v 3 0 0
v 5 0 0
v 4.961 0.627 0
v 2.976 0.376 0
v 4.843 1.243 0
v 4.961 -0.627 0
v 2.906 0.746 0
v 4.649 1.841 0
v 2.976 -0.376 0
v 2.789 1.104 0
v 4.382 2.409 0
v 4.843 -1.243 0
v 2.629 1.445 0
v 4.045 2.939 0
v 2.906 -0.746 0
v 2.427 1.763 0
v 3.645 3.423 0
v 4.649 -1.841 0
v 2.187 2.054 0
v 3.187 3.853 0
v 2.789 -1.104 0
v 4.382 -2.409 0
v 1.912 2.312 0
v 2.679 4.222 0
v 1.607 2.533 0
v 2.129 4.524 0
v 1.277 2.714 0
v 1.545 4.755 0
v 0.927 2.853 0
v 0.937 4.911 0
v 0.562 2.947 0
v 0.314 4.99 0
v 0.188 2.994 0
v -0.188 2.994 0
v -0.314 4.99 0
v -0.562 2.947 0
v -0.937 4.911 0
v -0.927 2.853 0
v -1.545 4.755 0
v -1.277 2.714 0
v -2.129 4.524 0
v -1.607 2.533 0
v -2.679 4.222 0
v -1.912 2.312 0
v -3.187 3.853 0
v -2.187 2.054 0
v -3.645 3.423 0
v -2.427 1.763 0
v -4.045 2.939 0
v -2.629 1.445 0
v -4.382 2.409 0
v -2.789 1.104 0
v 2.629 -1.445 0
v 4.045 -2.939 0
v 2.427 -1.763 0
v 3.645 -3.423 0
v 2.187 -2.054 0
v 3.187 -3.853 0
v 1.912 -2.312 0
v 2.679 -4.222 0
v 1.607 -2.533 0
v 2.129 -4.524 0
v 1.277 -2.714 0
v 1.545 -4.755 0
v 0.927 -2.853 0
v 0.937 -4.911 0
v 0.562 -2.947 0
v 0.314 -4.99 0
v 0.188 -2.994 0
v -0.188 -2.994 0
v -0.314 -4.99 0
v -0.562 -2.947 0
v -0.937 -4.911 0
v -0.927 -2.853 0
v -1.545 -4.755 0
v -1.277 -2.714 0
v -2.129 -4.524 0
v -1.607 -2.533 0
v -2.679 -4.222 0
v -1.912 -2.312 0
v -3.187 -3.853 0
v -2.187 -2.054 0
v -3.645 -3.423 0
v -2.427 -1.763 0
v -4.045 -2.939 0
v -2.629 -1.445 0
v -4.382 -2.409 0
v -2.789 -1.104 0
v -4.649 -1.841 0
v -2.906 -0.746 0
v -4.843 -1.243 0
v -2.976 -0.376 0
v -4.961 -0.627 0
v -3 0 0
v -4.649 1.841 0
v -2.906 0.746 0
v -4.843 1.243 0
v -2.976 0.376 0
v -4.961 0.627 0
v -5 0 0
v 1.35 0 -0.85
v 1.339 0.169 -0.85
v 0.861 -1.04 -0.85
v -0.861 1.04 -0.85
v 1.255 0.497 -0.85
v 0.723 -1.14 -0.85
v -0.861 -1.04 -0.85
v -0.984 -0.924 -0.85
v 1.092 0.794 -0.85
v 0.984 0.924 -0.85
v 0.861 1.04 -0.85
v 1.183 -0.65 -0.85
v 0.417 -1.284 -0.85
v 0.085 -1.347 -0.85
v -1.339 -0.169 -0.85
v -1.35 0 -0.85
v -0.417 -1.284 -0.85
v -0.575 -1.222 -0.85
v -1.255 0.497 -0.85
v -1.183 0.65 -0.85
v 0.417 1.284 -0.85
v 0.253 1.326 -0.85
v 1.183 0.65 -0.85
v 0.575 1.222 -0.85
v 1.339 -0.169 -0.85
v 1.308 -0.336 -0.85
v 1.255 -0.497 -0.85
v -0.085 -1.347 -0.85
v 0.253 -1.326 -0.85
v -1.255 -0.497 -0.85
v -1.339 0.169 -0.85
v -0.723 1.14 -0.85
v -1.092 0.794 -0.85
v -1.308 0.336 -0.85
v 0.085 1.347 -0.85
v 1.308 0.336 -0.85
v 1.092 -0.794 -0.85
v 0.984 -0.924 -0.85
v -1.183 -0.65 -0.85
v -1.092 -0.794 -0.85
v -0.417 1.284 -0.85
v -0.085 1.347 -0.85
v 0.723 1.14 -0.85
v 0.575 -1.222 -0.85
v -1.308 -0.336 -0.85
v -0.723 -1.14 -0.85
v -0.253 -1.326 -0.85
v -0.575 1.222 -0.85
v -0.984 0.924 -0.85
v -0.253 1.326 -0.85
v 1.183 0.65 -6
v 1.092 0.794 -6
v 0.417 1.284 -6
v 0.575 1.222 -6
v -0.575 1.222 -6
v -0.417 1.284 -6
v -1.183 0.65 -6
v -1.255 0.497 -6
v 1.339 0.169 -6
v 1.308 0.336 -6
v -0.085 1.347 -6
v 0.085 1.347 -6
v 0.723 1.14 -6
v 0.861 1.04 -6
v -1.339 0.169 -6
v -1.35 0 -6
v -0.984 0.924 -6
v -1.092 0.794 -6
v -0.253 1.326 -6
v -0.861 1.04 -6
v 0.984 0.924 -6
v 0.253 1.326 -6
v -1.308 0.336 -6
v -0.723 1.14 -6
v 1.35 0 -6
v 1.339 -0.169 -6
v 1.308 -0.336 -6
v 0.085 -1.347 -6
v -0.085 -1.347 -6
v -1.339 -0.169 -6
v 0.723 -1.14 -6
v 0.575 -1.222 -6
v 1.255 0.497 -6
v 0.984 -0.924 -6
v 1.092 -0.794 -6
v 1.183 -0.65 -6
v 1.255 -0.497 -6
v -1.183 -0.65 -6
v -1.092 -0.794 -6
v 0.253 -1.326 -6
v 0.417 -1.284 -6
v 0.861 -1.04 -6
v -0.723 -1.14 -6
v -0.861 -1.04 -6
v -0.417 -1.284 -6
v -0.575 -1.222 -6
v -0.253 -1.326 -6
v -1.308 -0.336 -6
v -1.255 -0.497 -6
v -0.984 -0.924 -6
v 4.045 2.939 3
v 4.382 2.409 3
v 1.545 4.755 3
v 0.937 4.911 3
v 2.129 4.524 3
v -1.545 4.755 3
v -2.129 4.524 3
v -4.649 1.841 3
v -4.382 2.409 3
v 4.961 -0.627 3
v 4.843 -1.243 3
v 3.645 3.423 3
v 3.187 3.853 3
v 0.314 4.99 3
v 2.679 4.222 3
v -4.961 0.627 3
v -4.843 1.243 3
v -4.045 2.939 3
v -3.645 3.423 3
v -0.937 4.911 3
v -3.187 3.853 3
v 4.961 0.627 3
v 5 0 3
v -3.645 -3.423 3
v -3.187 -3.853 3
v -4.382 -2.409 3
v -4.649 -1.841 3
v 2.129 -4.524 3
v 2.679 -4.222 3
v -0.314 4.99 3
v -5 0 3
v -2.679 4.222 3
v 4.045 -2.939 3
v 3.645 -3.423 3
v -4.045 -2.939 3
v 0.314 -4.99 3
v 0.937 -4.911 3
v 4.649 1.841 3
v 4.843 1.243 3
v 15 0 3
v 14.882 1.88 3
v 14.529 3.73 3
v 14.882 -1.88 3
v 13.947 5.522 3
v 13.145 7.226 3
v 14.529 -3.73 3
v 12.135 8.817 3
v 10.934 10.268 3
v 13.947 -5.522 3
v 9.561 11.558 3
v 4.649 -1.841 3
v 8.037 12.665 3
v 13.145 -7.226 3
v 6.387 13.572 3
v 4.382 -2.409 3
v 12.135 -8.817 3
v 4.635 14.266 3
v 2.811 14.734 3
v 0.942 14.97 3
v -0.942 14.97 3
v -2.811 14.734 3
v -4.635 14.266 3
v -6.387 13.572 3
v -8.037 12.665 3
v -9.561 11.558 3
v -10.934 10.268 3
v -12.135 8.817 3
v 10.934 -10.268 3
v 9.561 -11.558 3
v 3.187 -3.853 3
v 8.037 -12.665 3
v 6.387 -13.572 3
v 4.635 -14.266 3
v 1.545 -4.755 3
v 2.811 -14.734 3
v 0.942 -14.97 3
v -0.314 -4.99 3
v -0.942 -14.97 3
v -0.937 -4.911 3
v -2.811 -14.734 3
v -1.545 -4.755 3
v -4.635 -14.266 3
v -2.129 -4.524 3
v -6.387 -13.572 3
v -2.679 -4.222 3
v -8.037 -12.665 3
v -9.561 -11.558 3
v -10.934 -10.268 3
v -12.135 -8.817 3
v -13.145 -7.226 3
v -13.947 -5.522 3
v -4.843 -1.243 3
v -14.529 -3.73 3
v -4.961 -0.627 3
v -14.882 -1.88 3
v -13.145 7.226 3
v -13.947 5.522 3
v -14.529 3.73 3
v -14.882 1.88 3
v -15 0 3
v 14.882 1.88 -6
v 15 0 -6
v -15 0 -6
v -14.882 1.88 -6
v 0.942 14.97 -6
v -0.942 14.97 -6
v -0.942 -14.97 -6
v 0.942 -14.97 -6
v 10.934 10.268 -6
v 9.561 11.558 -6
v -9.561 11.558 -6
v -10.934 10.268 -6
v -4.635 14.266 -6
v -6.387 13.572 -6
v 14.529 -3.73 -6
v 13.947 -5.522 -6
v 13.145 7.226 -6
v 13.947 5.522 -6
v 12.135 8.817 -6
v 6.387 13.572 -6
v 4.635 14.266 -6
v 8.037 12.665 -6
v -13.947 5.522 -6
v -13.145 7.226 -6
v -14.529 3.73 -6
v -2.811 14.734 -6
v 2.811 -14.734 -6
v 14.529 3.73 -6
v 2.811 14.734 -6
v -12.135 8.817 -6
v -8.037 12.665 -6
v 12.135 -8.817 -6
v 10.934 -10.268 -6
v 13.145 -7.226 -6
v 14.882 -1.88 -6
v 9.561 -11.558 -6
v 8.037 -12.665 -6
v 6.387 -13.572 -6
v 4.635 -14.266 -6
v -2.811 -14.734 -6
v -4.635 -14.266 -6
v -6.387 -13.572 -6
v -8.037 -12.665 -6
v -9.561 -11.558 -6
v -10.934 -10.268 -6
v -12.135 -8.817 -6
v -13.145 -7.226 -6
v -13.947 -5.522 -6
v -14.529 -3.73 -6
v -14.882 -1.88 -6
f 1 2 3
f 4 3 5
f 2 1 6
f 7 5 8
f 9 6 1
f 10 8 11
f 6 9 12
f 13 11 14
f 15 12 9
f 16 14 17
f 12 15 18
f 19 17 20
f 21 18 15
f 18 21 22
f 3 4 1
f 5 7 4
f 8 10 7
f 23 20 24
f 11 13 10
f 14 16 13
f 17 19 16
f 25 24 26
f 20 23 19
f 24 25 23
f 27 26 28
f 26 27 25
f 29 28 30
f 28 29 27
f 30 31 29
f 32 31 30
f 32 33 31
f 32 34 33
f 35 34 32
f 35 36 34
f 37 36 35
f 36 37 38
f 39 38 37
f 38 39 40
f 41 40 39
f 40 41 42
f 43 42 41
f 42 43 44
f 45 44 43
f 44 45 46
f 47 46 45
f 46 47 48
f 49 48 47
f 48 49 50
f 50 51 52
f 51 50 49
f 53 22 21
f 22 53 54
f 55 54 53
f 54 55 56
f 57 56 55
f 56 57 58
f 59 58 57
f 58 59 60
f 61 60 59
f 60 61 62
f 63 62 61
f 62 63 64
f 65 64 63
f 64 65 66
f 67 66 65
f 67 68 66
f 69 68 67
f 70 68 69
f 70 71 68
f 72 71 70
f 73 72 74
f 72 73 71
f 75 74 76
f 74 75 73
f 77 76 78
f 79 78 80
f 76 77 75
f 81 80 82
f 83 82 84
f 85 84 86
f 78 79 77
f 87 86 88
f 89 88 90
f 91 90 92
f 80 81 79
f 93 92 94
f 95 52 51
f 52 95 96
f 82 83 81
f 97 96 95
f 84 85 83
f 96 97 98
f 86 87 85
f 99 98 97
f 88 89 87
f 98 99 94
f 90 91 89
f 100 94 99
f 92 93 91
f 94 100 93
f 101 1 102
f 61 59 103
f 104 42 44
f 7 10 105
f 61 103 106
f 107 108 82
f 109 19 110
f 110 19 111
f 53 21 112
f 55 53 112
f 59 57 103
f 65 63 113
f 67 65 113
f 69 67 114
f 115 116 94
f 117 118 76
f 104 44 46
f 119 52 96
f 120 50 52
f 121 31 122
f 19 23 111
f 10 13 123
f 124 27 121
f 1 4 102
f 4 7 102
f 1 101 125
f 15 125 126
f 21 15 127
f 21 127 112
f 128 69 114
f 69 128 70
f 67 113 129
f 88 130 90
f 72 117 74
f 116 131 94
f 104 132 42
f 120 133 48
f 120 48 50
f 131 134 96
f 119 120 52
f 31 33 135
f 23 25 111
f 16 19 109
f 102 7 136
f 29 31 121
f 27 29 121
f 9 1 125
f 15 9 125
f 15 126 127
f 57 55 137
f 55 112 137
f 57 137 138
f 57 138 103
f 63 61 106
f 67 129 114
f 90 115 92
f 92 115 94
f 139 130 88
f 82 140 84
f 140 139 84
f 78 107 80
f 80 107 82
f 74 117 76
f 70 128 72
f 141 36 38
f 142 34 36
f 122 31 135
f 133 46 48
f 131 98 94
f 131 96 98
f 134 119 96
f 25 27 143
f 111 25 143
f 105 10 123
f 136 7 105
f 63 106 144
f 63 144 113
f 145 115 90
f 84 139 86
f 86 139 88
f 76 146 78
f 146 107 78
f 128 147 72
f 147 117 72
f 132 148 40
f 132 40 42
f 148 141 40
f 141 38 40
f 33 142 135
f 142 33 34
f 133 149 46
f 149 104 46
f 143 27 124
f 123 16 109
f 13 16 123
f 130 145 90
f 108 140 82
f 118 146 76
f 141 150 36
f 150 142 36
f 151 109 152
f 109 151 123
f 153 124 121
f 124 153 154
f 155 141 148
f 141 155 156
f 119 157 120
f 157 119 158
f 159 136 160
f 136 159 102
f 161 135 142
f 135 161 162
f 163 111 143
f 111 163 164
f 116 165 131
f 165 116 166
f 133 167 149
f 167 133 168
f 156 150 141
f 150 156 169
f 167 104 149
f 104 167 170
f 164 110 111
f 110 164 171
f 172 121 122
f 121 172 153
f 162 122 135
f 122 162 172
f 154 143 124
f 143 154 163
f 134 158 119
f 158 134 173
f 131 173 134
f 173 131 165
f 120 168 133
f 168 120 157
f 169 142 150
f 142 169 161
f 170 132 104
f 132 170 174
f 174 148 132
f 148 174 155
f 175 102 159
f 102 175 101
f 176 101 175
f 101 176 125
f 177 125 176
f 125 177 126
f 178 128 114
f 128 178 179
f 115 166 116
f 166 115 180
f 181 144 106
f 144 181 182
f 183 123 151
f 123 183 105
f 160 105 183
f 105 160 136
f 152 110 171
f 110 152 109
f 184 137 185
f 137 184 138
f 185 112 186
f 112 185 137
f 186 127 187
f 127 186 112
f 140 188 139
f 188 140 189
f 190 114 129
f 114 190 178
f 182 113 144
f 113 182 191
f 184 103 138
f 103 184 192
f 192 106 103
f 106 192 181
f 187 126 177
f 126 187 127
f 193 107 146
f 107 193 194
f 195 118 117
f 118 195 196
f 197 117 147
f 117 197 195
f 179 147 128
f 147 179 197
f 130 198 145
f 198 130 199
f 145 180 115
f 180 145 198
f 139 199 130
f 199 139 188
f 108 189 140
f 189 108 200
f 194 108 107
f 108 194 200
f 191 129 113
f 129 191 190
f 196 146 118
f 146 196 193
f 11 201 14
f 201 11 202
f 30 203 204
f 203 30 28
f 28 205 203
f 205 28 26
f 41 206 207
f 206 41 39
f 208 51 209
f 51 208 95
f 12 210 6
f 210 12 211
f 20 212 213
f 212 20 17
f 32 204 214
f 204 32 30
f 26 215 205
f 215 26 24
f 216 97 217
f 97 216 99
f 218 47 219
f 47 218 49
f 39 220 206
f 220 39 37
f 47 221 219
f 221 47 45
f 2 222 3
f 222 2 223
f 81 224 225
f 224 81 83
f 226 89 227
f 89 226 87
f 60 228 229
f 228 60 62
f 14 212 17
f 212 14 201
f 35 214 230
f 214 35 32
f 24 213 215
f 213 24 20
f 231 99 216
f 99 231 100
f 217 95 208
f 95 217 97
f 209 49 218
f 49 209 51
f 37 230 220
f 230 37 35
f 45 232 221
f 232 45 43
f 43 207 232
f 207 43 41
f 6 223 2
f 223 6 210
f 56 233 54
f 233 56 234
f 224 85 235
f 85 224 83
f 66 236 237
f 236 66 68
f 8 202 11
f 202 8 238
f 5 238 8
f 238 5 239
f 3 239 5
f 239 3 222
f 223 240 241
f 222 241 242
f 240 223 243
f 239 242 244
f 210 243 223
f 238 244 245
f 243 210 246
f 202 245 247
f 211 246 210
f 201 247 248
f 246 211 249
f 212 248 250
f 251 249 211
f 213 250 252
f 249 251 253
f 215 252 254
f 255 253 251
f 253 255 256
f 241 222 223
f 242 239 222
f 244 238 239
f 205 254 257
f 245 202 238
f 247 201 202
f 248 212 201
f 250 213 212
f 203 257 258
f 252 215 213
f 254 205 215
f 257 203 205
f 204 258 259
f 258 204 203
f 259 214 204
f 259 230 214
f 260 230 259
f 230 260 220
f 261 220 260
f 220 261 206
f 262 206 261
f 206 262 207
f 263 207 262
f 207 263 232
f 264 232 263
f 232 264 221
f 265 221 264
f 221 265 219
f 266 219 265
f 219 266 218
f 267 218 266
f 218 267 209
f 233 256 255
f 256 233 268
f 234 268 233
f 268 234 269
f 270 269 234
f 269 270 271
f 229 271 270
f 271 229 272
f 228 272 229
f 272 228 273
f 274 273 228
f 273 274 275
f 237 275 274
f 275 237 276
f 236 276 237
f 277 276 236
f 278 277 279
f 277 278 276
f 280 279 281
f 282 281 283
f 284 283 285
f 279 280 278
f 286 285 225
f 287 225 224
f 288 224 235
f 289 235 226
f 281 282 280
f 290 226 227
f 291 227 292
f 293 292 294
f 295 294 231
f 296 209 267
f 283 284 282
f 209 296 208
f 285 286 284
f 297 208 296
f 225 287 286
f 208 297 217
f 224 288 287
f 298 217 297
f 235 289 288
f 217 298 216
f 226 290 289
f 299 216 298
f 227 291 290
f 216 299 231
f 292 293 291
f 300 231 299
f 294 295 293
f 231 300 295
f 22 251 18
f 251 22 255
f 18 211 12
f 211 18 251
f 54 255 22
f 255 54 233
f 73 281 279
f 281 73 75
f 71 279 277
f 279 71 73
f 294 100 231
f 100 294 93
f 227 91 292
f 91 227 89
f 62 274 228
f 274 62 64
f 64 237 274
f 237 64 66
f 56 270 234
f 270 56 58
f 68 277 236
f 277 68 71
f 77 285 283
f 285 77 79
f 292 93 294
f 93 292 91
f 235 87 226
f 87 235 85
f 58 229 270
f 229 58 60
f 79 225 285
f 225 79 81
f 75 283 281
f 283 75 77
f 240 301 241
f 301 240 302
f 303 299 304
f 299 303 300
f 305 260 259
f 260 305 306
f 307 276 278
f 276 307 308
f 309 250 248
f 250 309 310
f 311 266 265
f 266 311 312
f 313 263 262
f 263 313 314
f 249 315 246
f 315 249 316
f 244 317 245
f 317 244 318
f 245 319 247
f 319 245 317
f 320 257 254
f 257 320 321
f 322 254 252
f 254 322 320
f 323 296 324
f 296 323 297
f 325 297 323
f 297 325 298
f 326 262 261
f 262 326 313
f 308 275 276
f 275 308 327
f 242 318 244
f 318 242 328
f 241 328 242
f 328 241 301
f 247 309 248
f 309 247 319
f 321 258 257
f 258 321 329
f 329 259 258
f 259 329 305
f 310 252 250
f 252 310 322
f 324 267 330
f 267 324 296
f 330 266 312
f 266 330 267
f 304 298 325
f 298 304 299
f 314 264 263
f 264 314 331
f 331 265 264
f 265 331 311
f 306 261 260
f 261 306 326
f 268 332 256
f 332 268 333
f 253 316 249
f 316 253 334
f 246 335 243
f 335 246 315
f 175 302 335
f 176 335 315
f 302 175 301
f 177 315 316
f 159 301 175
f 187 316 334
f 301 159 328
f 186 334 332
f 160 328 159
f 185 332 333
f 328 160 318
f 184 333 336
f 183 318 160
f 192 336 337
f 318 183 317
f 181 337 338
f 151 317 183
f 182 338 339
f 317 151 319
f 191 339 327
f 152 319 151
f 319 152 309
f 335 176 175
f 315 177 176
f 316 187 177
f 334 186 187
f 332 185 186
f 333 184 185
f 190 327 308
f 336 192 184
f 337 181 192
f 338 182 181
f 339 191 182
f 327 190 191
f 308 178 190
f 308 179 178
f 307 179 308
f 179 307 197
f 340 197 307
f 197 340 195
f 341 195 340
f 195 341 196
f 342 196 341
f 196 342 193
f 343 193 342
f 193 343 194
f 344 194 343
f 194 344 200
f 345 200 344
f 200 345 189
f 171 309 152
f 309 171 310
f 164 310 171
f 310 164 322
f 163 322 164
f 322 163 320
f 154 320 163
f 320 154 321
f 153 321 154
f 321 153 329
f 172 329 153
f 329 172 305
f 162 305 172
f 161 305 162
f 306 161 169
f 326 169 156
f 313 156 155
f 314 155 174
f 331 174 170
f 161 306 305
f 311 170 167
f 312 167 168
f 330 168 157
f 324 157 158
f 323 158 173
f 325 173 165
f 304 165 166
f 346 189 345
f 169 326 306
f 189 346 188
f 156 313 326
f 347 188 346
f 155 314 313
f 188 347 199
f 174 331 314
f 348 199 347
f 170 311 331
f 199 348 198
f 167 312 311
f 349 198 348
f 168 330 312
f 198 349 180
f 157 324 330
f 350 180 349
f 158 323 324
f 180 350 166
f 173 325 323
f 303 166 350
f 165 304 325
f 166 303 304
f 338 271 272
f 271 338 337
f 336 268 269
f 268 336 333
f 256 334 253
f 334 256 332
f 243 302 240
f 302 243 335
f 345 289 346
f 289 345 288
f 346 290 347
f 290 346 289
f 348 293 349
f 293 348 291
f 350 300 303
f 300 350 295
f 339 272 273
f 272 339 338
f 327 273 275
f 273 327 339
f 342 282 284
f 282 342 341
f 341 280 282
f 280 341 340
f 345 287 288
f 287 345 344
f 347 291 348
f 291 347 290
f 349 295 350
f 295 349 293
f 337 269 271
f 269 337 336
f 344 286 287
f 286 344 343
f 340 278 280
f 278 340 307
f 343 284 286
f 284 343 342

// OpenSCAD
$fn = 50;


difference() {
	union() {
		translate(v = [0, 0, -6.0000000000]) {
			cylinder(h = 9, r = 15.0000000000);
		}
	}
	union() {
		translate(v = [0, 0, 0]) {
			rotate(a = [0, 0, 0]) {
				difference() {
					union() {
						translate(v = [0, 0, -9.0000000000]) {
							cylinder(h = 9, r = 1.0000000000);
						}
						translate(v = [0, 0, -0.8500000000]) {
							cylinder(h = 0.8500000000, r1 = 1.3500000000, r2 = 3.0000000000);
						}
						translate(v = [0, 0, -9.0000000000]) {
							cylinder(h = 9, r = 1.3500000000);
						}
						translate(v = [0, 0, -9.0000000000]) {
							cylinder(h = 9, r = 1.0000000000);
						}
					}
					union();
				}
			}
		}
		#cylinder(h = 3, r = 5.0000000000);
	}
}
